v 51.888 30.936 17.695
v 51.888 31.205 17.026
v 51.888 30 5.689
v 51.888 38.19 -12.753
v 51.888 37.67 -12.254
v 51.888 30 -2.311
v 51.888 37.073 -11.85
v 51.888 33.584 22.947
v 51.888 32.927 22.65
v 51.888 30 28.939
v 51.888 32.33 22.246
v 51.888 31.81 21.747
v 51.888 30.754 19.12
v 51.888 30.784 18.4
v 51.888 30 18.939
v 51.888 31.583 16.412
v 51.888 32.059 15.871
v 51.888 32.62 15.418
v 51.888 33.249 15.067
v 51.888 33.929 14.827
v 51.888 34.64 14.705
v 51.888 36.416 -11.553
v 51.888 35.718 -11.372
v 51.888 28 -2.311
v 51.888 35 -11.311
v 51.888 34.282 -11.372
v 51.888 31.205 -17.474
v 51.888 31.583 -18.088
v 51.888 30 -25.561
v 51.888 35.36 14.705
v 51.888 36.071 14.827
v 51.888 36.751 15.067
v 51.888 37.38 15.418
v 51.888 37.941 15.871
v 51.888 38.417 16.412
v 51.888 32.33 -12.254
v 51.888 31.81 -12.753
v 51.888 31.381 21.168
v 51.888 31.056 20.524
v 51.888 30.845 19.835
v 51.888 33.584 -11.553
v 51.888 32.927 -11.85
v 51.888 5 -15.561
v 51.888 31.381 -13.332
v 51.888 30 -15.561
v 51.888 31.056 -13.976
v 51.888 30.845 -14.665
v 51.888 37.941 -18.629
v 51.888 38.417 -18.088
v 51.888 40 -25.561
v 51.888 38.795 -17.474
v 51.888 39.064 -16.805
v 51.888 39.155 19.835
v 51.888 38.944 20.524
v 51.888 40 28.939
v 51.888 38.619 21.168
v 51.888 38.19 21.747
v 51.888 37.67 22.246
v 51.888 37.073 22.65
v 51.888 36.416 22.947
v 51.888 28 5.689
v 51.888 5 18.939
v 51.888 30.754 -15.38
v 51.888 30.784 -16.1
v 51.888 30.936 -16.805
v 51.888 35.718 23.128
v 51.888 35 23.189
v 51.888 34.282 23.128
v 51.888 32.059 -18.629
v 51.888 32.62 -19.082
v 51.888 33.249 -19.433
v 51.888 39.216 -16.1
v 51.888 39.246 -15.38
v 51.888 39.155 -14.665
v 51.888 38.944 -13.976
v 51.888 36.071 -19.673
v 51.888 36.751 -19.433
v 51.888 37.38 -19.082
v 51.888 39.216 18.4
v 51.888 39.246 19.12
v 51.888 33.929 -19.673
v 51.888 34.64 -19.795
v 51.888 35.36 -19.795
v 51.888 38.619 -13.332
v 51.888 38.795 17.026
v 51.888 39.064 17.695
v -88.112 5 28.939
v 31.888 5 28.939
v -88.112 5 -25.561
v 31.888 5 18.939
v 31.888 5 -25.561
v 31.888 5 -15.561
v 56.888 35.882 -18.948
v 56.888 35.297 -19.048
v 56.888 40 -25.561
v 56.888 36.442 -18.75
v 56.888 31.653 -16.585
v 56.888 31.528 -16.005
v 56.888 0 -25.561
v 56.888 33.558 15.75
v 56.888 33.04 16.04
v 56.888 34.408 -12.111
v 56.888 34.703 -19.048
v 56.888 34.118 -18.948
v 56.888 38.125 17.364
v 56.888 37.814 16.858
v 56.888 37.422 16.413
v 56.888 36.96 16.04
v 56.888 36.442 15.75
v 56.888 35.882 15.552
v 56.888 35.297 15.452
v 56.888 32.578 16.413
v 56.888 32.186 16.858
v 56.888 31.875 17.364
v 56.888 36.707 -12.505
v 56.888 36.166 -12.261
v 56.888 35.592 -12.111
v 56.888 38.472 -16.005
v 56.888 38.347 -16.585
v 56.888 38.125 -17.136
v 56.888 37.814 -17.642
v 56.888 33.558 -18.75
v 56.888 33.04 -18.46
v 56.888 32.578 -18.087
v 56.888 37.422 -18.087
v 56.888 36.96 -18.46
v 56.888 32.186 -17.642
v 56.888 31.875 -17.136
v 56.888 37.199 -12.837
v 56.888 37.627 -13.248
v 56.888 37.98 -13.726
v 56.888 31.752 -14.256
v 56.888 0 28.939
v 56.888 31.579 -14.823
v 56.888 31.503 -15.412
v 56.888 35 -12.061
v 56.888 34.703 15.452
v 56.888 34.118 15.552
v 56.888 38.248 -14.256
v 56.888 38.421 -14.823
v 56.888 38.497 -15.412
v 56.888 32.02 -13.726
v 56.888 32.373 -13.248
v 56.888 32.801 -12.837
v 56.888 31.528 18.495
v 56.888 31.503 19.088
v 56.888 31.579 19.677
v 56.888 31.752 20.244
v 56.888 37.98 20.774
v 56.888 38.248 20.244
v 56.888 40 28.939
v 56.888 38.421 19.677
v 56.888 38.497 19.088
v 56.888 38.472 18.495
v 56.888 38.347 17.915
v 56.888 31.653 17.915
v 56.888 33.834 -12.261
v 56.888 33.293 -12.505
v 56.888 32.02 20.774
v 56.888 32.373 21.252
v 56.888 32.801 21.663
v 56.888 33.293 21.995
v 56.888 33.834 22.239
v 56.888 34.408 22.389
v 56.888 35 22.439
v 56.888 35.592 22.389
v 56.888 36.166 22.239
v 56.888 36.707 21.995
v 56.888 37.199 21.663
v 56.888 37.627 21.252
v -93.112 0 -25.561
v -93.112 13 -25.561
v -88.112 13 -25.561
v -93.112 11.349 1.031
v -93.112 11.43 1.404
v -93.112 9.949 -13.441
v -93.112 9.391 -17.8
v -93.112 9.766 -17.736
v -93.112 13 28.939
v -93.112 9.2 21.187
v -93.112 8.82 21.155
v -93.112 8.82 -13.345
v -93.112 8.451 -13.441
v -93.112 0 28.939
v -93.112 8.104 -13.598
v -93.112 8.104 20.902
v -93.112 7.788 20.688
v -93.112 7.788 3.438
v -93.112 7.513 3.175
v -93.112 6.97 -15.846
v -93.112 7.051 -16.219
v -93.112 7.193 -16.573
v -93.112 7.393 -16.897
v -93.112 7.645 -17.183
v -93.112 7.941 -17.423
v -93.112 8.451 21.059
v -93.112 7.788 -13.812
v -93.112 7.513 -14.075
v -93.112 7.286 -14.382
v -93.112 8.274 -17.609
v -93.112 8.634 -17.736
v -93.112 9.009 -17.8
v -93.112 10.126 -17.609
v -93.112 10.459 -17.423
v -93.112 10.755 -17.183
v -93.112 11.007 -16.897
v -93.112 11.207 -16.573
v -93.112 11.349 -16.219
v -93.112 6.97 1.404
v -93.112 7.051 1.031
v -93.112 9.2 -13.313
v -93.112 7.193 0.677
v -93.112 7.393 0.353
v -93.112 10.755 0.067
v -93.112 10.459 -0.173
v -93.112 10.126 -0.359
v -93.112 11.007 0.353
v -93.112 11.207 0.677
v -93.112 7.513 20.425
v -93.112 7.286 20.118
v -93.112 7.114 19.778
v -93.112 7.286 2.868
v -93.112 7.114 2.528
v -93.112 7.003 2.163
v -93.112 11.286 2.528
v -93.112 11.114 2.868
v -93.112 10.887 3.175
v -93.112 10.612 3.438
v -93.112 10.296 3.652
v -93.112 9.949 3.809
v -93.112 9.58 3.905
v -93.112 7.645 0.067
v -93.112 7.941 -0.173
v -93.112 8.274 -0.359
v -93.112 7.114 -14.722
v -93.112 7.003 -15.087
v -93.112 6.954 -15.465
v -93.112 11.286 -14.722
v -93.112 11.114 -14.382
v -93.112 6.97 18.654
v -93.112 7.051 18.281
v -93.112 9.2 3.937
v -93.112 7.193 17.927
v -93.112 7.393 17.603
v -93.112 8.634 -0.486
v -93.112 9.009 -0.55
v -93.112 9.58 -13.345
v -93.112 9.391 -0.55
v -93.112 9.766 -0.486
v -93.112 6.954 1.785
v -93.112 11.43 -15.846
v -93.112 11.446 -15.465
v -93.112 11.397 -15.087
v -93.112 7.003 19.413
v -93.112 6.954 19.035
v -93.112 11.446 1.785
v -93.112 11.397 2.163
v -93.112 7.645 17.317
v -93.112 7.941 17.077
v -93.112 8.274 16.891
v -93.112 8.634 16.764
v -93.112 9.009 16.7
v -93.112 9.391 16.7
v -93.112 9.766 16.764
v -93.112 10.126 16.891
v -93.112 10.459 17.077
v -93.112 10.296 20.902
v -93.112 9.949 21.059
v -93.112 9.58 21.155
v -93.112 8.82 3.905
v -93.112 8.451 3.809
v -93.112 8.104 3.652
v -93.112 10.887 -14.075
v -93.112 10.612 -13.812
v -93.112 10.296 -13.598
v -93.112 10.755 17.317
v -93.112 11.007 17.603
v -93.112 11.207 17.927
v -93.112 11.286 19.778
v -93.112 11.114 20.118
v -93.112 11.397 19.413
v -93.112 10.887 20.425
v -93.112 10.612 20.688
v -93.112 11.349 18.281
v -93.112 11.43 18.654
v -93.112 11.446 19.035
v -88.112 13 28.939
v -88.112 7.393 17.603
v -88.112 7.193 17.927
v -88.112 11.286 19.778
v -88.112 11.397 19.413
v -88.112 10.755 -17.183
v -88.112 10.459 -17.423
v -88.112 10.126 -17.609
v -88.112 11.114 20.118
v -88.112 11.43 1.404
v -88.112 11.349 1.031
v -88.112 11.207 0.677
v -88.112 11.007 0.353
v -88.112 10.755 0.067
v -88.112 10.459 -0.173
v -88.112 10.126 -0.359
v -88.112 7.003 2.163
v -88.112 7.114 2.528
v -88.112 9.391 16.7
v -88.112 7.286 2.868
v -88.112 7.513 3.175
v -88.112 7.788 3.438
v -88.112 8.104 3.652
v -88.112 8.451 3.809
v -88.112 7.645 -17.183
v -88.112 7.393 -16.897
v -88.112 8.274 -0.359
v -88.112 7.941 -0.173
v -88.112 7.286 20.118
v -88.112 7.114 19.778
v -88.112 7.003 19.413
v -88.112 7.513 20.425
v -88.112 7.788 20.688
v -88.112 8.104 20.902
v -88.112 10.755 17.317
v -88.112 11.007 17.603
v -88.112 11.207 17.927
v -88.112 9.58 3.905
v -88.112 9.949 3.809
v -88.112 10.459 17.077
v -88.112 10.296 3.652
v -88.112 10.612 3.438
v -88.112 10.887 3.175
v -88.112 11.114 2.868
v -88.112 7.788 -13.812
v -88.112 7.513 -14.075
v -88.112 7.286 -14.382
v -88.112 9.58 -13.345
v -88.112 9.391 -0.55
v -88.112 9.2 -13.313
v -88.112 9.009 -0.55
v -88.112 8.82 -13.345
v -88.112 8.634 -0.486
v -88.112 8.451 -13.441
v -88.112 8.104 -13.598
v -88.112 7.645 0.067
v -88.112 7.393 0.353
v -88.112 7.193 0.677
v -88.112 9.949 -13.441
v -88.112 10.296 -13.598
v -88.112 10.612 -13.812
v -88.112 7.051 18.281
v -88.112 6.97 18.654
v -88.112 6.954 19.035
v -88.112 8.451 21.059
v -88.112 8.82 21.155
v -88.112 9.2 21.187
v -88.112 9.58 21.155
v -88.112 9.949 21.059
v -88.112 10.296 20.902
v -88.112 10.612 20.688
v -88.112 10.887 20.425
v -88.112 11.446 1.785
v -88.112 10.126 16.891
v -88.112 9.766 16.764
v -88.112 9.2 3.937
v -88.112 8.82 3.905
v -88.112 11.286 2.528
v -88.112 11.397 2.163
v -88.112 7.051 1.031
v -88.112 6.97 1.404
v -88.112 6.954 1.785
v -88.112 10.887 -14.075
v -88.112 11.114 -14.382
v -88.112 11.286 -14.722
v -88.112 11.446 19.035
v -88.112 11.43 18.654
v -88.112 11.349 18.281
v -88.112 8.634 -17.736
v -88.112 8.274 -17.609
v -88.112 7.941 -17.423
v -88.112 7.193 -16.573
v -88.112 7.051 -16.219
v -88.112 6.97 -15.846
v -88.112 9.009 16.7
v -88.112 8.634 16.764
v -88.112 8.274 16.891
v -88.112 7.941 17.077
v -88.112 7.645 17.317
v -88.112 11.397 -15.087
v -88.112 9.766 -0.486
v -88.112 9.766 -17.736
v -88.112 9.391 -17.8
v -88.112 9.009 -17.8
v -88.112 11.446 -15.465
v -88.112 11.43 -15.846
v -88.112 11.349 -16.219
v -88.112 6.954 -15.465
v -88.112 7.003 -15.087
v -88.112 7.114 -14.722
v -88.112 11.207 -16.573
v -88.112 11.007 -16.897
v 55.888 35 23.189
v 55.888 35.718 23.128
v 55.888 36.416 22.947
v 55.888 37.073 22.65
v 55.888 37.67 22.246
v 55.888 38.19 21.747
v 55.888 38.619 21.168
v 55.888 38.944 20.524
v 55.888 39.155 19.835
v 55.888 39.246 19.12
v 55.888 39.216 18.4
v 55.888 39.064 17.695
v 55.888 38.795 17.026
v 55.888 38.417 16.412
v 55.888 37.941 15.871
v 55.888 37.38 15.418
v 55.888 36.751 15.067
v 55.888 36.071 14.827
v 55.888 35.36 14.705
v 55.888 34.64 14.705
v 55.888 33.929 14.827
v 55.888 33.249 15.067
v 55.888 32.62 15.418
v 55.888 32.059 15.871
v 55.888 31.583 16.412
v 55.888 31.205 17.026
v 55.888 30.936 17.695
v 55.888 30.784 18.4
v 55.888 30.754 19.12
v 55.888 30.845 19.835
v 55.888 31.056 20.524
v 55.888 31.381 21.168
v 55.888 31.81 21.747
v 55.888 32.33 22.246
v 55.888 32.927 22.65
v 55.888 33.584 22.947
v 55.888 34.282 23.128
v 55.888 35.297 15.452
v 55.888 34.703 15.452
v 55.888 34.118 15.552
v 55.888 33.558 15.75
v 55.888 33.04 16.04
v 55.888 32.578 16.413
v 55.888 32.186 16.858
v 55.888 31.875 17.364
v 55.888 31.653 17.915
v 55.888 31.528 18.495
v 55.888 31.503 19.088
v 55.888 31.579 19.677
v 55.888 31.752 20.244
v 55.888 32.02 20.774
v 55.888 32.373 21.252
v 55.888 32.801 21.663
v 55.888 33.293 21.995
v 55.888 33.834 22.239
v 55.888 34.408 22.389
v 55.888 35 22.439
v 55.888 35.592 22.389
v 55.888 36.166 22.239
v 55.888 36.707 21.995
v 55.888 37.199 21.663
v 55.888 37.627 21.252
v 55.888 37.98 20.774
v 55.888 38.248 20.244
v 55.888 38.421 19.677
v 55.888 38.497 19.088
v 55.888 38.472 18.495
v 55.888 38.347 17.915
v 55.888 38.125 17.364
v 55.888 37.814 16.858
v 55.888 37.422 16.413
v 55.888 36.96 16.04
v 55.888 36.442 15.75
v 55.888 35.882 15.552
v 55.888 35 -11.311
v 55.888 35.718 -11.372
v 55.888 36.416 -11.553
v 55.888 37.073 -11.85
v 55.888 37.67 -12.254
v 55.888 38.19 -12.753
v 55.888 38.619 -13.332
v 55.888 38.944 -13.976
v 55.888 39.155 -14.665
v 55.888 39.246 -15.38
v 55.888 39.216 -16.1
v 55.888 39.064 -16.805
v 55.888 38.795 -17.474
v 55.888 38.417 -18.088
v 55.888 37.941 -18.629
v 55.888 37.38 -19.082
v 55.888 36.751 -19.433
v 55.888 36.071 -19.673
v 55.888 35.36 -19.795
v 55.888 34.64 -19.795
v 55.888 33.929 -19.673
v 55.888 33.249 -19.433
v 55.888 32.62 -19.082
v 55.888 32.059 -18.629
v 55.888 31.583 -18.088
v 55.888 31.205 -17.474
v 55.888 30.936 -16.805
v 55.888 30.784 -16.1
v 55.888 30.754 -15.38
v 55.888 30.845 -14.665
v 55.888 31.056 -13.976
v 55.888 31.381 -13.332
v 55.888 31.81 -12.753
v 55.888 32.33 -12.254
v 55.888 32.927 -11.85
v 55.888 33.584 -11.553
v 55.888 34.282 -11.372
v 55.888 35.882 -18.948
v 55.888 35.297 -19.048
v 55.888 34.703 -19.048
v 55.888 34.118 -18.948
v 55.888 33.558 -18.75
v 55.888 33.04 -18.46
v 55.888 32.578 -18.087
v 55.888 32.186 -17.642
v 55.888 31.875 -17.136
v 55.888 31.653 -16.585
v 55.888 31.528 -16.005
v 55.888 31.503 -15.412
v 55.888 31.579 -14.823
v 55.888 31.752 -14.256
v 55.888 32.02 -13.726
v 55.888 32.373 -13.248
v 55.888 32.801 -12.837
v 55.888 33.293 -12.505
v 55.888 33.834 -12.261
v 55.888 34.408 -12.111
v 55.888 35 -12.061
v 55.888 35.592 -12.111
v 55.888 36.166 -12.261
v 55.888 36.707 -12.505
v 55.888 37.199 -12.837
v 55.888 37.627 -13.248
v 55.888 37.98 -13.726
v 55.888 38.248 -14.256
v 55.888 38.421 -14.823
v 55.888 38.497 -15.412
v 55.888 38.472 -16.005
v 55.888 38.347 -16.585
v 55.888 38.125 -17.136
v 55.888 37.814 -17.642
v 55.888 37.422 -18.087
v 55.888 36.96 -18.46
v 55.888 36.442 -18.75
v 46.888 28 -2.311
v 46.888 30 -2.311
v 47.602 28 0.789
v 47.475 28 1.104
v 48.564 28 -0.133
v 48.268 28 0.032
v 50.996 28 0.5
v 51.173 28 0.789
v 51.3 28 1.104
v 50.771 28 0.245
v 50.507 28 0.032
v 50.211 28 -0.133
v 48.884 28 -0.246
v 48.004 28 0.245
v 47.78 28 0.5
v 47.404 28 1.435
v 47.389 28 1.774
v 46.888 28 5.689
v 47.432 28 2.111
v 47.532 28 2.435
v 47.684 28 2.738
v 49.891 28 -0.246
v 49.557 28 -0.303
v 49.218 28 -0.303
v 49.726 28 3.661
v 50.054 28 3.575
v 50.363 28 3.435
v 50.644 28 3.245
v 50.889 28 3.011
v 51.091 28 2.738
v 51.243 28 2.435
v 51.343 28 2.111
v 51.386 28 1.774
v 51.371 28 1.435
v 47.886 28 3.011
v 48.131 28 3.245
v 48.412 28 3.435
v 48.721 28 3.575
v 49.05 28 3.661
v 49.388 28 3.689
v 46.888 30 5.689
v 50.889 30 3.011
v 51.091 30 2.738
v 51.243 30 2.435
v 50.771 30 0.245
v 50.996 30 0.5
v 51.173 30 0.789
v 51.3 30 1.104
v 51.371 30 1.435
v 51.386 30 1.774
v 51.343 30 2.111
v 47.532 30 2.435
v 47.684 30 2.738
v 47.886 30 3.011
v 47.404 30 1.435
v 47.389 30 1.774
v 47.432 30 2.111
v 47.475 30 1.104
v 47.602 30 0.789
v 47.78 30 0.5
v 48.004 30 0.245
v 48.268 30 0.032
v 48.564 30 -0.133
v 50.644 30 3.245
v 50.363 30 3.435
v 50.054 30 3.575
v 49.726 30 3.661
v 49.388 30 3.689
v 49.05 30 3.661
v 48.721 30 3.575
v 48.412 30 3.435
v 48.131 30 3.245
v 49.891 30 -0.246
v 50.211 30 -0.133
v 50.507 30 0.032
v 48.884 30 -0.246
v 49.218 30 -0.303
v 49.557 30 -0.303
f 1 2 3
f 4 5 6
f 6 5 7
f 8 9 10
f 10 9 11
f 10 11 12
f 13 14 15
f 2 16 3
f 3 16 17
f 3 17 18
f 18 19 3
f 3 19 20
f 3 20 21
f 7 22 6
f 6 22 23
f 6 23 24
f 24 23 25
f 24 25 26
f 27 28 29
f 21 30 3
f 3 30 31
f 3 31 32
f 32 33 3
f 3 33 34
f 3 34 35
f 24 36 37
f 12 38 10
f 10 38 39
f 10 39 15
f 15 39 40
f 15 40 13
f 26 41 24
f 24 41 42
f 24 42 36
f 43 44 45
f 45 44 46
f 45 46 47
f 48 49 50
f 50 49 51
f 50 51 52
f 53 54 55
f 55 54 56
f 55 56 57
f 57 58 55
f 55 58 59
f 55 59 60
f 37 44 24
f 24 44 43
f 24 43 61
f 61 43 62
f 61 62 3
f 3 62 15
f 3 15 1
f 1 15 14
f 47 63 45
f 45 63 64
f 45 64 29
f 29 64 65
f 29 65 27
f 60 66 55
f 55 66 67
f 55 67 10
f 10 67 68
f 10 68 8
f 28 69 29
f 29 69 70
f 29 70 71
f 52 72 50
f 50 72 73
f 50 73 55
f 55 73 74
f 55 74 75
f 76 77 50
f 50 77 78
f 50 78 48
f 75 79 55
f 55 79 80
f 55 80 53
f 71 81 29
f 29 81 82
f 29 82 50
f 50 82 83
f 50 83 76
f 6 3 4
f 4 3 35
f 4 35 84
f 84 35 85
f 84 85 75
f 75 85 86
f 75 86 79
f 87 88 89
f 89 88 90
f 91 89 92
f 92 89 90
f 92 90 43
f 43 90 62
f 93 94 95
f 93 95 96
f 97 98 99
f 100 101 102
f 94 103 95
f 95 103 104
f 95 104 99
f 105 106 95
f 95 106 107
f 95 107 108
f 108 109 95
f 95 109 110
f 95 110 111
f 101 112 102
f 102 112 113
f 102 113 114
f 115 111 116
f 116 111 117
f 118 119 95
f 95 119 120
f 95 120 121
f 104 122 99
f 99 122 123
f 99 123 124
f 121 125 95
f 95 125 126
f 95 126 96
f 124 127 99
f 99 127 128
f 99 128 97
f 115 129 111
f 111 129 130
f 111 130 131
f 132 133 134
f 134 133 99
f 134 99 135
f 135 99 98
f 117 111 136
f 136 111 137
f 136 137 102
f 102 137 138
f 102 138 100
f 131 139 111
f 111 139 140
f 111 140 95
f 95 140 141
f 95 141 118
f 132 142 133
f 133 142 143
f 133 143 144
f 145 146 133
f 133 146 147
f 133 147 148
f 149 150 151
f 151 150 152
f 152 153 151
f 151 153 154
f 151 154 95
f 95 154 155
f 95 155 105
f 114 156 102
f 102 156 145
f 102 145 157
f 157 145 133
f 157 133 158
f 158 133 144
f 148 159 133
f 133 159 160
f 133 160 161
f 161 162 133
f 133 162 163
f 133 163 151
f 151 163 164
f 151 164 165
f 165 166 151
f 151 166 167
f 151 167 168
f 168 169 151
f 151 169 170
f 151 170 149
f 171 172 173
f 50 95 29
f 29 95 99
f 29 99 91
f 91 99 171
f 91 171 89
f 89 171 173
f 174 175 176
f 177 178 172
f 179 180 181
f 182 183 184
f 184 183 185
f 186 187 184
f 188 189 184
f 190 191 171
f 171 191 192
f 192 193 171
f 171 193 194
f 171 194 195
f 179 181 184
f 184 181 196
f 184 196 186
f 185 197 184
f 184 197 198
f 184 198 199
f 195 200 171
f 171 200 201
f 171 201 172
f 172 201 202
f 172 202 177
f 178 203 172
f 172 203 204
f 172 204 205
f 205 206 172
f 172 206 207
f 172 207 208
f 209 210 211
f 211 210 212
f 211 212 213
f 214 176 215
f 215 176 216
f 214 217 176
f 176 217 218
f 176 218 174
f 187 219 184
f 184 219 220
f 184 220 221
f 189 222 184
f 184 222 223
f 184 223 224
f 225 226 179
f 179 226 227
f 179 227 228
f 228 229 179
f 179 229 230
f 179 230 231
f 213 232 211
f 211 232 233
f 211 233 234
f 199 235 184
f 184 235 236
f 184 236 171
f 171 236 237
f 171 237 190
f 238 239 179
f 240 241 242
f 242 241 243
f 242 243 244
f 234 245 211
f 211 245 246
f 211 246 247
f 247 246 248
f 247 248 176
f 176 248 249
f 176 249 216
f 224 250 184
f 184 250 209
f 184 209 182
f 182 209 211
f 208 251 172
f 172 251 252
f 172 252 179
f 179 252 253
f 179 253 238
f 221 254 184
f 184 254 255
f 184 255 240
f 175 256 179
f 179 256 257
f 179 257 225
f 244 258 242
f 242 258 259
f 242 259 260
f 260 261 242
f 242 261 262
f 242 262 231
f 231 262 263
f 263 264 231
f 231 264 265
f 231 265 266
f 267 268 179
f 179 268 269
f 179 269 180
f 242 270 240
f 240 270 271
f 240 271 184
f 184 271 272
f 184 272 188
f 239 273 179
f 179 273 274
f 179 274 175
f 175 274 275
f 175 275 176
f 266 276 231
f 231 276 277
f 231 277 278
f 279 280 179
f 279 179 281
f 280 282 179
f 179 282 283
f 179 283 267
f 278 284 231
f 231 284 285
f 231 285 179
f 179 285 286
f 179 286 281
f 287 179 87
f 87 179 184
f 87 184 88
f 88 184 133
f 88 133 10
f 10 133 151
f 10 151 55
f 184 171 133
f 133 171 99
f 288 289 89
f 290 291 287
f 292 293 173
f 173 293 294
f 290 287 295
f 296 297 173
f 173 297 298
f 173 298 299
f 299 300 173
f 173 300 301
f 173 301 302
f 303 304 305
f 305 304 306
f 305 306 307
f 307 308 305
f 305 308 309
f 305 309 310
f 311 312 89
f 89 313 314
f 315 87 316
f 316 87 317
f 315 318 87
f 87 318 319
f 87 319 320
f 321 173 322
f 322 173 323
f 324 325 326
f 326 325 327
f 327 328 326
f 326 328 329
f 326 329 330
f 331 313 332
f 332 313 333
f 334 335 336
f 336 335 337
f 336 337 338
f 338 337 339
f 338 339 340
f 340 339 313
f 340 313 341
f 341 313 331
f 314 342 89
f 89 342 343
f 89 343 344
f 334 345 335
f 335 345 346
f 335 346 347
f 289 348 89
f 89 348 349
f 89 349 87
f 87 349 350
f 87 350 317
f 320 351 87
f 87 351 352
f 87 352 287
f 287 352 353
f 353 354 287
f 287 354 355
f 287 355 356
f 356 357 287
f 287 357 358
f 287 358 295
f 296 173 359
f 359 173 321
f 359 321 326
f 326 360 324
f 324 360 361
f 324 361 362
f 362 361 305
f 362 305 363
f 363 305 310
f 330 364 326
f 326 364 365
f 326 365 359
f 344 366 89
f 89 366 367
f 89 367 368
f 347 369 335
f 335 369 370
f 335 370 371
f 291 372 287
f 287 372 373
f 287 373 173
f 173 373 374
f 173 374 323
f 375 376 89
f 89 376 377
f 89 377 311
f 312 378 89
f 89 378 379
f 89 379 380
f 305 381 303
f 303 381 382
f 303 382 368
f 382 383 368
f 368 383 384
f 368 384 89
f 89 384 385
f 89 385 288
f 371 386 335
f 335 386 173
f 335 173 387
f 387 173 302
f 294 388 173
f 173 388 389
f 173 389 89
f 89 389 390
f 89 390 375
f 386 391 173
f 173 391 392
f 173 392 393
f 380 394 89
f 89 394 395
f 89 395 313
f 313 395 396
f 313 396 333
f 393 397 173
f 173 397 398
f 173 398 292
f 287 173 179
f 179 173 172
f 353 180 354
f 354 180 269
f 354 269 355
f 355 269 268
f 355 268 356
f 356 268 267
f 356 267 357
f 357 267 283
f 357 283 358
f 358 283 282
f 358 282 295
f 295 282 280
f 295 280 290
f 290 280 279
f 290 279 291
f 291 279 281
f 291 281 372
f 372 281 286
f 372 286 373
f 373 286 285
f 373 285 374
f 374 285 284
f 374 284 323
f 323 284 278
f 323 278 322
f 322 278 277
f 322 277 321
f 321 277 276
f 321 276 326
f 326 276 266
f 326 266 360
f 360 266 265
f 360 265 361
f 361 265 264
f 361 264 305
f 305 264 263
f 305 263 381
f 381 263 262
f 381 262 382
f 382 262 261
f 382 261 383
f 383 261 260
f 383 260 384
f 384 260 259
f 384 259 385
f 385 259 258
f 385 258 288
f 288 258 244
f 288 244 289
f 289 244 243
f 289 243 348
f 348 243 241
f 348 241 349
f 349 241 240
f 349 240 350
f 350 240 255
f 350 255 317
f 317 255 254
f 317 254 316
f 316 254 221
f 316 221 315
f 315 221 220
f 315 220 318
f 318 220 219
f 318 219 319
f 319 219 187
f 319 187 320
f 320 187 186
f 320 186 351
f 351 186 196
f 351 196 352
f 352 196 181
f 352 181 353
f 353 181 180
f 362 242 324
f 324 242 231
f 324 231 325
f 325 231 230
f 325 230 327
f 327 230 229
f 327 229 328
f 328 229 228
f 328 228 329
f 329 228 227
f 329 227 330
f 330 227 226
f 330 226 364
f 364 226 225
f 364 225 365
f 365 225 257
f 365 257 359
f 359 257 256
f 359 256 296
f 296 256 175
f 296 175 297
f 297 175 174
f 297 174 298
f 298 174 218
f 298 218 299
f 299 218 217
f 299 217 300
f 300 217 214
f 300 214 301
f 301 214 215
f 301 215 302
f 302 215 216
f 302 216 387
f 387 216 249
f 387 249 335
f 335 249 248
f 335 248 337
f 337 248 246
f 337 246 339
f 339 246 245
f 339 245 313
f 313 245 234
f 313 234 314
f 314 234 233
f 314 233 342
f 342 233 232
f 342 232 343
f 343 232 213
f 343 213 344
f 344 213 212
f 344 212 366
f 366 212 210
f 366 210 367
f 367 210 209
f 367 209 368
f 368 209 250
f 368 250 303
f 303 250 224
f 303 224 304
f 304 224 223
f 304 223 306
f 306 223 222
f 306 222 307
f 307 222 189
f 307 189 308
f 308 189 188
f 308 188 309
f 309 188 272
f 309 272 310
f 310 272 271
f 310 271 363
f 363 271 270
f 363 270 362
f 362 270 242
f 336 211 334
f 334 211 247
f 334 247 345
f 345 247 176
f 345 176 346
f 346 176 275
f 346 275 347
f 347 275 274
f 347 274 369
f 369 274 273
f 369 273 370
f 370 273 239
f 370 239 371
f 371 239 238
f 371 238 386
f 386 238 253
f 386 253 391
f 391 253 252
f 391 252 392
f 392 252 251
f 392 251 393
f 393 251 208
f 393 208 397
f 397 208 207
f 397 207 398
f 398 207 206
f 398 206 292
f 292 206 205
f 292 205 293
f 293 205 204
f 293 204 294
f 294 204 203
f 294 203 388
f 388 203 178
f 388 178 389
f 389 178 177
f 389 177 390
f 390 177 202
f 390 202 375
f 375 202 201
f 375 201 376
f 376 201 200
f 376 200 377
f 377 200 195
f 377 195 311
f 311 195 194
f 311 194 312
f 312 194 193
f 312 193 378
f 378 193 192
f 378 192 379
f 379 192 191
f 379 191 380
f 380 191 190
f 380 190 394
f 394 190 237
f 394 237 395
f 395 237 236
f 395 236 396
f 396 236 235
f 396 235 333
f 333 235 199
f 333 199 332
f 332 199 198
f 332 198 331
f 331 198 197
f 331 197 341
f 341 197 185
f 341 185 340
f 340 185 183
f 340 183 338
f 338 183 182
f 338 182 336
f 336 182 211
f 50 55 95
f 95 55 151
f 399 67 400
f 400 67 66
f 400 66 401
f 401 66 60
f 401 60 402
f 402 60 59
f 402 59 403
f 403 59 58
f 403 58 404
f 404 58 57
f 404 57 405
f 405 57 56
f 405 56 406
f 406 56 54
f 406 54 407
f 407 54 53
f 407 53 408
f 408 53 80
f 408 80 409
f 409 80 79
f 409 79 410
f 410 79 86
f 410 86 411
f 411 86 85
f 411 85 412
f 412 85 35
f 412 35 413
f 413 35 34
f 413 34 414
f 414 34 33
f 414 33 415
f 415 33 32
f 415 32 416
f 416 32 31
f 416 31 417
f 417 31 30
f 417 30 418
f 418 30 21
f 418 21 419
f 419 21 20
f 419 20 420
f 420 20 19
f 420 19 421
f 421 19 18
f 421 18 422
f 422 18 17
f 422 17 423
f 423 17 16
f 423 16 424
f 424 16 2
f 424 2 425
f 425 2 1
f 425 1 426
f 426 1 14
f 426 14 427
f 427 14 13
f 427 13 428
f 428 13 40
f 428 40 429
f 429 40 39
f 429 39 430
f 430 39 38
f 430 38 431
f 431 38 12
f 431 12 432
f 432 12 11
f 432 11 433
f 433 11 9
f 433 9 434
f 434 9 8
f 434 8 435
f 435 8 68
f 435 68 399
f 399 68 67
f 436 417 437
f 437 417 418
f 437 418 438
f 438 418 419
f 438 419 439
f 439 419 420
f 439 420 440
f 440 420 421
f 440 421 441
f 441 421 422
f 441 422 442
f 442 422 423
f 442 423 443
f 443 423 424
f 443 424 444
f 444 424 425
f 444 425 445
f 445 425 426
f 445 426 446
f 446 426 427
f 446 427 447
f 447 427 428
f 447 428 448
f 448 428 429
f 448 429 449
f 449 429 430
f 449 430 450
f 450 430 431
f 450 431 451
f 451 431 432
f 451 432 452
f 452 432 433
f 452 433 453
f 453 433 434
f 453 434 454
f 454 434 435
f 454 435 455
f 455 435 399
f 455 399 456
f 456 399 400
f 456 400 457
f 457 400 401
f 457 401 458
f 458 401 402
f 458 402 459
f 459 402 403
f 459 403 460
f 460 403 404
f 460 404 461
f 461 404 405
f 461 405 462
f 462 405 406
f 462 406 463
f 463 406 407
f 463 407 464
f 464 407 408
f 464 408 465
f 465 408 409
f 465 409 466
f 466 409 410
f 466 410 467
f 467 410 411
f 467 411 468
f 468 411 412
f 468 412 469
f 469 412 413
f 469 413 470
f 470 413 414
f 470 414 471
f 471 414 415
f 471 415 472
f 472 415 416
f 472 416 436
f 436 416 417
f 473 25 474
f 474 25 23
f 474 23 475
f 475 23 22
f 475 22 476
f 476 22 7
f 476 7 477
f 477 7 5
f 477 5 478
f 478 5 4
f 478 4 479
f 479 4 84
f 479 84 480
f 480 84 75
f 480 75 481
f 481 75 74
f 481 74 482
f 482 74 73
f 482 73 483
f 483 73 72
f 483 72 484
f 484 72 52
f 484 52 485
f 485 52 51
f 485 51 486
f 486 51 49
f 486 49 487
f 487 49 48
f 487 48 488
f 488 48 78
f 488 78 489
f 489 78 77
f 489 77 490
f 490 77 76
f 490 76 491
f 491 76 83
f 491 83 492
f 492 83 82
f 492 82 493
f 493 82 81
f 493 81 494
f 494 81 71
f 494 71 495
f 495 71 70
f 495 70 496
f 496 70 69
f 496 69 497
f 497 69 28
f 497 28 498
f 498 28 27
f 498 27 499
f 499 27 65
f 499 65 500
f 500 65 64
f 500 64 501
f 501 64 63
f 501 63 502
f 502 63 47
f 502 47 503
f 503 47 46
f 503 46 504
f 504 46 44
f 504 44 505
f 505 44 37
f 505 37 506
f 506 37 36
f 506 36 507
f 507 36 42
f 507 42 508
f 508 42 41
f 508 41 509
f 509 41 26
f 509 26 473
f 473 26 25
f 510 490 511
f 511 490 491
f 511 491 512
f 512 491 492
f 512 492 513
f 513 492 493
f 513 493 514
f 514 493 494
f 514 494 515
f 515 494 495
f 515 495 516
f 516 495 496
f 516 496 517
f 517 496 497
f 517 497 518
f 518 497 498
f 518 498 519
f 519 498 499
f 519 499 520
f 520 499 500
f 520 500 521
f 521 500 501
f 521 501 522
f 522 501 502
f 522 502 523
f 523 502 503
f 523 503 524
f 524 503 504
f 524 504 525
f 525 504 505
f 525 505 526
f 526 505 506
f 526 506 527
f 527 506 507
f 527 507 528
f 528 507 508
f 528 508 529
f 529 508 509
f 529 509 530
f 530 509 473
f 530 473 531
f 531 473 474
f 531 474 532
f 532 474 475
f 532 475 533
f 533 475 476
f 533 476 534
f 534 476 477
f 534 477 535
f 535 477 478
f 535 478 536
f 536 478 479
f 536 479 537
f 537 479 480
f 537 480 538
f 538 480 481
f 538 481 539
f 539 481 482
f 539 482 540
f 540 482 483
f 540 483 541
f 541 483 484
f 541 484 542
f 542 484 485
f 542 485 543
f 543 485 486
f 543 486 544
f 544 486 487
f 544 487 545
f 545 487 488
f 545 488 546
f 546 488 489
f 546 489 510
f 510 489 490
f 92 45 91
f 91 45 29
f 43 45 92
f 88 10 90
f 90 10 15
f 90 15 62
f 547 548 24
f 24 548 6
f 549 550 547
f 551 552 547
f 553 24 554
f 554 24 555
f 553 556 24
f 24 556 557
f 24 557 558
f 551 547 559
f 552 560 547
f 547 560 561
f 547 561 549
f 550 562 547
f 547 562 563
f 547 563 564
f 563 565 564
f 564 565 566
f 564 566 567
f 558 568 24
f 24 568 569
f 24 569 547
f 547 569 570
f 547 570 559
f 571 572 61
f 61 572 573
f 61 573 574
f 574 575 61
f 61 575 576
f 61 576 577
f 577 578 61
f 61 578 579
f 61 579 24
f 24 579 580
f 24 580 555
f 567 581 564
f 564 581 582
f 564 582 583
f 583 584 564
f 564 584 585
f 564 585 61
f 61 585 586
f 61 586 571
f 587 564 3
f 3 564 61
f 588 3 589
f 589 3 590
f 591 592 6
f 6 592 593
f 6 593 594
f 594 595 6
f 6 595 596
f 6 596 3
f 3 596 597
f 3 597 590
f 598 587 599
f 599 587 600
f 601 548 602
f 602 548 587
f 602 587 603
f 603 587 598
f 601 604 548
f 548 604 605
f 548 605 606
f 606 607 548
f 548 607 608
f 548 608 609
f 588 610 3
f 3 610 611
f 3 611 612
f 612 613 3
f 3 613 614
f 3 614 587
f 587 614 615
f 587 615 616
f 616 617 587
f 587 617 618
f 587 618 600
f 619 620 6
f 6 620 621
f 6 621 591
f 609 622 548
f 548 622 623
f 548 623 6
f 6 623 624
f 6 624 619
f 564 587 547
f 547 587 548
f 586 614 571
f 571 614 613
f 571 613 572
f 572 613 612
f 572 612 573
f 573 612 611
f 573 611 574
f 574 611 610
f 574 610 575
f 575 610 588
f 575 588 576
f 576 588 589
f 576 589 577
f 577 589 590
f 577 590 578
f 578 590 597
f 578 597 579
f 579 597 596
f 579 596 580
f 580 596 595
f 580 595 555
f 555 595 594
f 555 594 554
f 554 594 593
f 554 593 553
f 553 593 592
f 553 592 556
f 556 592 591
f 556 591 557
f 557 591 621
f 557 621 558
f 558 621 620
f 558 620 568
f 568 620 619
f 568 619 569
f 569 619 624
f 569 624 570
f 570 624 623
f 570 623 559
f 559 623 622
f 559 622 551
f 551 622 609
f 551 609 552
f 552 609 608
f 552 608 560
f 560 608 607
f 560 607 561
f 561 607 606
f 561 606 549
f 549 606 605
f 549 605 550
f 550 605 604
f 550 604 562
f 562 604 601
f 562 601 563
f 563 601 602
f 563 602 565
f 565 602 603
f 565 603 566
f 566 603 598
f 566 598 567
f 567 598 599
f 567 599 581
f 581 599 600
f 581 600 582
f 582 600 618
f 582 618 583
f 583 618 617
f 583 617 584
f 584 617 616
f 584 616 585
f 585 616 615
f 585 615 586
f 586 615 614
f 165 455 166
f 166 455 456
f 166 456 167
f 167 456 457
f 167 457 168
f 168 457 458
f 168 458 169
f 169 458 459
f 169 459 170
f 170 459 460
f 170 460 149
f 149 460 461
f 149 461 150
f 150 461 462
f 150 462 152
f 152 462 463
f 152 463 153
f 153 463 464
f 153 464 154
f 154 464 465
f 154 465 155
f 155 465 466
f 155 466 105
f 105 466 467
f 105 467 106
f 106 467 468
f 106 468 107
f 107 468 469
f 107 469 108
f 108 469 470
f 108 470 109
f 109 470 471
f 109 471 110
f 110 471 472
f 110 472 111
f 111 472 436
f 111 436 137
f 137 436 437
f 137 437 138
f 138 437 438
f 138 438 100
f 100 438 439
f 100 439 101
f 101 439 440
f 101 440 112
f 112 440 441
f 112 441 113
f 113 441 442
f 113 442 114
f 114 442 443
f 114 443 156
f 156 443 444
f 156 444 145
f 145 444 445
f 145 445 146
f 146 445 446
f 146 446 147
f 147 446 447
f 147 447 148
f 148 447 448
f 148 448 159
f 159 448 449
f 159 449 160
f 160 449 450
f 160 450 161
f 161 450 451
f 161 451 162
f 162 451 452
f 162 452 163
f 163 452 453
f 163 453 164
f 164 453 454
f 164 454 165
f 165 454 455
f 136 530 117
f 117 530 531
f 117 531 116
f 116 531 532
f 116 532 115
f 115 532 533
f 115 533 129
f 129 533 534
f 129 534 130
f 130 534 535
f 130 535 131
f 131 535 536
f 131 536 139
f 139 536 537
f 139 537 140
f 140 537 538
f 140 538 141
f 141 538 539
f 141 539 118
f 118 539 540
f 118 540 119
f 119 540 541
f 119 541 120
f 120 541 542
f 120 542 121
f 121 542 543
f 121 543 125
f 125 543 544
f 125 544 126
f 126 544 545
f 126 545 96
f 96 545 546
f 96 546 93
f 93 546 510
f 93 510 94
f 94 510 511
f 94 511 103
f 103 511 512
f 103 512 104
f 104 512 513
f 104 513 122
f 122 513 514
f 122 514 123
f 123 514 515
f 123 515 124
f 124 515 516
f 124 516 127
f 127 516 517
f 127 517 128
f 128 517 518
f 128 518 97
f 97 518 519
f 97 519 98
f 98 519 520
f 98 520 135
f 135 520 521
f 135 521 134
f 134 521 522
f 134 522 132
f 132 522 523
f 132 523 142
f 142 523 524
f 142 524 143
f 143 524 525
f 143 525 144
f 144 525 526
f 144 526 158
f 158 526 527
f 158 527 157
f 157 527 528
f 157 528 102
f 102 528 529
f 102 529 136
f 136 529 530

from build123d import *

# Parameters (mm, degrees)
SKETCH1_W                 = 150
SKETCH1_H                 = 54.5
BOSS_EXTRUDE1_DEPTH       = 5
SKETCH2_W                 = 5
SKETCH2_H                 = 54.5
BOSS_EXTRUDE2_DEPTH       = 8
F_8_CLEARANCE_HOLE1_D     = 4.4958
F_8_CLEARANCE_HOLE1_DEPTH = 17
F_8_CLEARANCE_HOLE1_TIP   = 1.350674586
SKETCH7_W                 = 5
SKETCH7_H                 = 54.5
BOSS_EXTRUDE3_DEPTH       = 35
SKETCH8_R                 = 4.25
CUT_EXTRUDE1_DEPTH        = 4
RIB1_REACH                = 117.066
SKETCH10_WALL_W           = 264.147591324
SKETCH10_WALL_H           = 10
RIB3_REACH                = 117.066
SKETCH12_WALL_W           = 264.147591324
SKETCH12_WALL_H           = 10
SKETCH13_W                = 8
SKETCH13_H                = 2
BOSS_EXTRUDE4_DEPTH       = 5
SKETCH14_R                = 2
CUT_EXTRUDE2_DEPTH        = 2
SKETCH15_R                = 3.5
CUT_EXTRUDE3_DEPTH        = 1


with BuildPart() as part:
    # Sketch1 → Boss-Extrude1 (new body)
    with BuildSketch(Plane(origin=(0, 0, 0), x_dir=(1, 0, 0), z_dir=(0, 1, 0))):
        with Locations((-18.112463826, -1.689393939)):
            Rectangle(SKETCH1_W, SKETCH1_H)
    extrude(amount=BOSS_EXTRUDE1_DEPTH)

    # Sketch2 → Boss-Extrude2 (add)
    with BuildSketch(Plane(origin=(0, 5, 0), x_dir=(1, 0, 0), z_dir=(0, 1, 0))):
        with Locations((-90.612463826, -1.689393939)):
            Rectangle(SKETCH2_W, SKETCH2_H)
    extrude(amount=BOSS_EXTRUDE2_DEPTH)

    # #8 Clearance Hole1
    with Locations(Plane(origin=(-93.112463826, 9.2, -15.560606061), x_dir=(0, 0, -1), z_dir=(-1, 0, 0))):
        with Locations((0, 0), (-17.25, 0), (-34.5, 0)):
            Hole(F_8_CLEARANCE_HOLE1_D / 2, depth=F_8_CLEARANCE_HOLE1_DEPTH)
            with Locations((0, 0, -(F_8_CLEARANCE_HOLE1_DEPTH + F_8_CLEARANCE_HOLE1_TIP / 2))):  # 118° drill point
                Cone(0, F_8_CLEARANCE_HOLE1_D / 2, F_8_CLEARANCE_HOLE1_TIP, mode=Mode.SUBTRACT)

    # Sketch7 → Boss-Extrude3 (add)
    with BuildSketch(Plane(origin=(0, 5, 0), x_dir=(1, 0, 0), z_dir=(0, 1, 0))):
        with Locations((54.387536174, -1.689393939)):
            Rectangle(SKETCH7_W, SKETCH7_H)
    extrude(amount=BOSS_EXTRUDE3_DEPTH)

    # Sketch8 → Cut-Extrude1 (cut)
    with BuildSketch(Plane.ZY.offset(-51.887536174)):
        with Locations((-15.560606061, 35)):
            Circle(SKETCH8_R)
        with Locations((18.939393939, 35)):
            Circle(SKETCH8_R)
    extrude(amount=-CUT_EXTRUDE1_DEPTH, mode=Mode.SUBTRACT)

    # Sketch10 wall → Rib1 (add, up to next)
    with BuildSketch(Plane(origin=(41.887536174, 17.5, -25.560606061), x_dir=(-0.624695047554, -0.780868809443, 0), z_dir=(-0.780868809443, 0.624695047554, 0)), mode=Mode.PRIVATE) as rib1_sk1:
        with Locations((0, 5)):
            Rectangle(SKETCH10_WALL_W, SKETCH10_WALL_H)
    rib1_tool1 = extrude(rib1_sk1.sketch, amount=-RIB1_REACH, mode=Mode.PRIVATE) - part.part
    add(rib1_tool1.solids().sort_by_distance((41.887536174, 17.5, -25.560606061))[0])

    # Sketch12 wall → Rib3 (add, up to next)
    with BuildSketch(Plane(origin=(41.887536174, 17.5, 28.939393939), x_dir=(-0.624695047554, -0.780868809443, 0), z_dir=(0.780868809443, -0.624695047554, 0)), mode=Mode.PRIVATE) as rib3_sk1:
        with Locations((0, 5)):
            Rectangle(SKETCH12_WALL_W, SKETCH12_WALL_H)
    rib3_tool1 = extrude(rib3_sk1.sketch, amount=RIB3_REACH, mode=Mode.PRIVATE) - part.part
    add(rib3_tool1.solids().sort_by_distance((41.887536174, 17.5, 28.939393939))[0])

    # Sketch13 → Boss-Extrude4 (add)
    with BuildSketch(Plane.ZY.offset(-51.887536174)):
        with Locations((1.689393939, 29)):
            Rectangle(SKETCH13_W, SKETCH13_H)
    extrude(amount=BOSS_EXTRUDE4_DEPTH)

    # Sketch14 → Cut-Extrude2 (cut)
    with BuildSketch(Plane(origin=(0, 30, 0), x_dir=(1, 0, 0), z_dir=(0, 1, 0))):
        with Locations(Location((49.387536174, -1.689393939, 0), (0, 0, 270))):
            Circle(SKETCH14_R)
    extrude(amount=-CUT_EXTRUDE2_DEPTH, mode=Mode.SUBTRACT)

    # Sketch15 → Cut-Extrude3 (cut)
    with BuildSketch(Plane.ZY.offset(-55.887536174)):
        with Locations((-15.560606061, 35)):
            Circle(SKETCH15_R)
        with Locations((18.939393939, 35)):
            Circle(SKETCH15_R)
    extrude(amount=-CUT_EXTRUDE3_DEPTH, mode=Mode.SUBTRACT)


solid = part.part
